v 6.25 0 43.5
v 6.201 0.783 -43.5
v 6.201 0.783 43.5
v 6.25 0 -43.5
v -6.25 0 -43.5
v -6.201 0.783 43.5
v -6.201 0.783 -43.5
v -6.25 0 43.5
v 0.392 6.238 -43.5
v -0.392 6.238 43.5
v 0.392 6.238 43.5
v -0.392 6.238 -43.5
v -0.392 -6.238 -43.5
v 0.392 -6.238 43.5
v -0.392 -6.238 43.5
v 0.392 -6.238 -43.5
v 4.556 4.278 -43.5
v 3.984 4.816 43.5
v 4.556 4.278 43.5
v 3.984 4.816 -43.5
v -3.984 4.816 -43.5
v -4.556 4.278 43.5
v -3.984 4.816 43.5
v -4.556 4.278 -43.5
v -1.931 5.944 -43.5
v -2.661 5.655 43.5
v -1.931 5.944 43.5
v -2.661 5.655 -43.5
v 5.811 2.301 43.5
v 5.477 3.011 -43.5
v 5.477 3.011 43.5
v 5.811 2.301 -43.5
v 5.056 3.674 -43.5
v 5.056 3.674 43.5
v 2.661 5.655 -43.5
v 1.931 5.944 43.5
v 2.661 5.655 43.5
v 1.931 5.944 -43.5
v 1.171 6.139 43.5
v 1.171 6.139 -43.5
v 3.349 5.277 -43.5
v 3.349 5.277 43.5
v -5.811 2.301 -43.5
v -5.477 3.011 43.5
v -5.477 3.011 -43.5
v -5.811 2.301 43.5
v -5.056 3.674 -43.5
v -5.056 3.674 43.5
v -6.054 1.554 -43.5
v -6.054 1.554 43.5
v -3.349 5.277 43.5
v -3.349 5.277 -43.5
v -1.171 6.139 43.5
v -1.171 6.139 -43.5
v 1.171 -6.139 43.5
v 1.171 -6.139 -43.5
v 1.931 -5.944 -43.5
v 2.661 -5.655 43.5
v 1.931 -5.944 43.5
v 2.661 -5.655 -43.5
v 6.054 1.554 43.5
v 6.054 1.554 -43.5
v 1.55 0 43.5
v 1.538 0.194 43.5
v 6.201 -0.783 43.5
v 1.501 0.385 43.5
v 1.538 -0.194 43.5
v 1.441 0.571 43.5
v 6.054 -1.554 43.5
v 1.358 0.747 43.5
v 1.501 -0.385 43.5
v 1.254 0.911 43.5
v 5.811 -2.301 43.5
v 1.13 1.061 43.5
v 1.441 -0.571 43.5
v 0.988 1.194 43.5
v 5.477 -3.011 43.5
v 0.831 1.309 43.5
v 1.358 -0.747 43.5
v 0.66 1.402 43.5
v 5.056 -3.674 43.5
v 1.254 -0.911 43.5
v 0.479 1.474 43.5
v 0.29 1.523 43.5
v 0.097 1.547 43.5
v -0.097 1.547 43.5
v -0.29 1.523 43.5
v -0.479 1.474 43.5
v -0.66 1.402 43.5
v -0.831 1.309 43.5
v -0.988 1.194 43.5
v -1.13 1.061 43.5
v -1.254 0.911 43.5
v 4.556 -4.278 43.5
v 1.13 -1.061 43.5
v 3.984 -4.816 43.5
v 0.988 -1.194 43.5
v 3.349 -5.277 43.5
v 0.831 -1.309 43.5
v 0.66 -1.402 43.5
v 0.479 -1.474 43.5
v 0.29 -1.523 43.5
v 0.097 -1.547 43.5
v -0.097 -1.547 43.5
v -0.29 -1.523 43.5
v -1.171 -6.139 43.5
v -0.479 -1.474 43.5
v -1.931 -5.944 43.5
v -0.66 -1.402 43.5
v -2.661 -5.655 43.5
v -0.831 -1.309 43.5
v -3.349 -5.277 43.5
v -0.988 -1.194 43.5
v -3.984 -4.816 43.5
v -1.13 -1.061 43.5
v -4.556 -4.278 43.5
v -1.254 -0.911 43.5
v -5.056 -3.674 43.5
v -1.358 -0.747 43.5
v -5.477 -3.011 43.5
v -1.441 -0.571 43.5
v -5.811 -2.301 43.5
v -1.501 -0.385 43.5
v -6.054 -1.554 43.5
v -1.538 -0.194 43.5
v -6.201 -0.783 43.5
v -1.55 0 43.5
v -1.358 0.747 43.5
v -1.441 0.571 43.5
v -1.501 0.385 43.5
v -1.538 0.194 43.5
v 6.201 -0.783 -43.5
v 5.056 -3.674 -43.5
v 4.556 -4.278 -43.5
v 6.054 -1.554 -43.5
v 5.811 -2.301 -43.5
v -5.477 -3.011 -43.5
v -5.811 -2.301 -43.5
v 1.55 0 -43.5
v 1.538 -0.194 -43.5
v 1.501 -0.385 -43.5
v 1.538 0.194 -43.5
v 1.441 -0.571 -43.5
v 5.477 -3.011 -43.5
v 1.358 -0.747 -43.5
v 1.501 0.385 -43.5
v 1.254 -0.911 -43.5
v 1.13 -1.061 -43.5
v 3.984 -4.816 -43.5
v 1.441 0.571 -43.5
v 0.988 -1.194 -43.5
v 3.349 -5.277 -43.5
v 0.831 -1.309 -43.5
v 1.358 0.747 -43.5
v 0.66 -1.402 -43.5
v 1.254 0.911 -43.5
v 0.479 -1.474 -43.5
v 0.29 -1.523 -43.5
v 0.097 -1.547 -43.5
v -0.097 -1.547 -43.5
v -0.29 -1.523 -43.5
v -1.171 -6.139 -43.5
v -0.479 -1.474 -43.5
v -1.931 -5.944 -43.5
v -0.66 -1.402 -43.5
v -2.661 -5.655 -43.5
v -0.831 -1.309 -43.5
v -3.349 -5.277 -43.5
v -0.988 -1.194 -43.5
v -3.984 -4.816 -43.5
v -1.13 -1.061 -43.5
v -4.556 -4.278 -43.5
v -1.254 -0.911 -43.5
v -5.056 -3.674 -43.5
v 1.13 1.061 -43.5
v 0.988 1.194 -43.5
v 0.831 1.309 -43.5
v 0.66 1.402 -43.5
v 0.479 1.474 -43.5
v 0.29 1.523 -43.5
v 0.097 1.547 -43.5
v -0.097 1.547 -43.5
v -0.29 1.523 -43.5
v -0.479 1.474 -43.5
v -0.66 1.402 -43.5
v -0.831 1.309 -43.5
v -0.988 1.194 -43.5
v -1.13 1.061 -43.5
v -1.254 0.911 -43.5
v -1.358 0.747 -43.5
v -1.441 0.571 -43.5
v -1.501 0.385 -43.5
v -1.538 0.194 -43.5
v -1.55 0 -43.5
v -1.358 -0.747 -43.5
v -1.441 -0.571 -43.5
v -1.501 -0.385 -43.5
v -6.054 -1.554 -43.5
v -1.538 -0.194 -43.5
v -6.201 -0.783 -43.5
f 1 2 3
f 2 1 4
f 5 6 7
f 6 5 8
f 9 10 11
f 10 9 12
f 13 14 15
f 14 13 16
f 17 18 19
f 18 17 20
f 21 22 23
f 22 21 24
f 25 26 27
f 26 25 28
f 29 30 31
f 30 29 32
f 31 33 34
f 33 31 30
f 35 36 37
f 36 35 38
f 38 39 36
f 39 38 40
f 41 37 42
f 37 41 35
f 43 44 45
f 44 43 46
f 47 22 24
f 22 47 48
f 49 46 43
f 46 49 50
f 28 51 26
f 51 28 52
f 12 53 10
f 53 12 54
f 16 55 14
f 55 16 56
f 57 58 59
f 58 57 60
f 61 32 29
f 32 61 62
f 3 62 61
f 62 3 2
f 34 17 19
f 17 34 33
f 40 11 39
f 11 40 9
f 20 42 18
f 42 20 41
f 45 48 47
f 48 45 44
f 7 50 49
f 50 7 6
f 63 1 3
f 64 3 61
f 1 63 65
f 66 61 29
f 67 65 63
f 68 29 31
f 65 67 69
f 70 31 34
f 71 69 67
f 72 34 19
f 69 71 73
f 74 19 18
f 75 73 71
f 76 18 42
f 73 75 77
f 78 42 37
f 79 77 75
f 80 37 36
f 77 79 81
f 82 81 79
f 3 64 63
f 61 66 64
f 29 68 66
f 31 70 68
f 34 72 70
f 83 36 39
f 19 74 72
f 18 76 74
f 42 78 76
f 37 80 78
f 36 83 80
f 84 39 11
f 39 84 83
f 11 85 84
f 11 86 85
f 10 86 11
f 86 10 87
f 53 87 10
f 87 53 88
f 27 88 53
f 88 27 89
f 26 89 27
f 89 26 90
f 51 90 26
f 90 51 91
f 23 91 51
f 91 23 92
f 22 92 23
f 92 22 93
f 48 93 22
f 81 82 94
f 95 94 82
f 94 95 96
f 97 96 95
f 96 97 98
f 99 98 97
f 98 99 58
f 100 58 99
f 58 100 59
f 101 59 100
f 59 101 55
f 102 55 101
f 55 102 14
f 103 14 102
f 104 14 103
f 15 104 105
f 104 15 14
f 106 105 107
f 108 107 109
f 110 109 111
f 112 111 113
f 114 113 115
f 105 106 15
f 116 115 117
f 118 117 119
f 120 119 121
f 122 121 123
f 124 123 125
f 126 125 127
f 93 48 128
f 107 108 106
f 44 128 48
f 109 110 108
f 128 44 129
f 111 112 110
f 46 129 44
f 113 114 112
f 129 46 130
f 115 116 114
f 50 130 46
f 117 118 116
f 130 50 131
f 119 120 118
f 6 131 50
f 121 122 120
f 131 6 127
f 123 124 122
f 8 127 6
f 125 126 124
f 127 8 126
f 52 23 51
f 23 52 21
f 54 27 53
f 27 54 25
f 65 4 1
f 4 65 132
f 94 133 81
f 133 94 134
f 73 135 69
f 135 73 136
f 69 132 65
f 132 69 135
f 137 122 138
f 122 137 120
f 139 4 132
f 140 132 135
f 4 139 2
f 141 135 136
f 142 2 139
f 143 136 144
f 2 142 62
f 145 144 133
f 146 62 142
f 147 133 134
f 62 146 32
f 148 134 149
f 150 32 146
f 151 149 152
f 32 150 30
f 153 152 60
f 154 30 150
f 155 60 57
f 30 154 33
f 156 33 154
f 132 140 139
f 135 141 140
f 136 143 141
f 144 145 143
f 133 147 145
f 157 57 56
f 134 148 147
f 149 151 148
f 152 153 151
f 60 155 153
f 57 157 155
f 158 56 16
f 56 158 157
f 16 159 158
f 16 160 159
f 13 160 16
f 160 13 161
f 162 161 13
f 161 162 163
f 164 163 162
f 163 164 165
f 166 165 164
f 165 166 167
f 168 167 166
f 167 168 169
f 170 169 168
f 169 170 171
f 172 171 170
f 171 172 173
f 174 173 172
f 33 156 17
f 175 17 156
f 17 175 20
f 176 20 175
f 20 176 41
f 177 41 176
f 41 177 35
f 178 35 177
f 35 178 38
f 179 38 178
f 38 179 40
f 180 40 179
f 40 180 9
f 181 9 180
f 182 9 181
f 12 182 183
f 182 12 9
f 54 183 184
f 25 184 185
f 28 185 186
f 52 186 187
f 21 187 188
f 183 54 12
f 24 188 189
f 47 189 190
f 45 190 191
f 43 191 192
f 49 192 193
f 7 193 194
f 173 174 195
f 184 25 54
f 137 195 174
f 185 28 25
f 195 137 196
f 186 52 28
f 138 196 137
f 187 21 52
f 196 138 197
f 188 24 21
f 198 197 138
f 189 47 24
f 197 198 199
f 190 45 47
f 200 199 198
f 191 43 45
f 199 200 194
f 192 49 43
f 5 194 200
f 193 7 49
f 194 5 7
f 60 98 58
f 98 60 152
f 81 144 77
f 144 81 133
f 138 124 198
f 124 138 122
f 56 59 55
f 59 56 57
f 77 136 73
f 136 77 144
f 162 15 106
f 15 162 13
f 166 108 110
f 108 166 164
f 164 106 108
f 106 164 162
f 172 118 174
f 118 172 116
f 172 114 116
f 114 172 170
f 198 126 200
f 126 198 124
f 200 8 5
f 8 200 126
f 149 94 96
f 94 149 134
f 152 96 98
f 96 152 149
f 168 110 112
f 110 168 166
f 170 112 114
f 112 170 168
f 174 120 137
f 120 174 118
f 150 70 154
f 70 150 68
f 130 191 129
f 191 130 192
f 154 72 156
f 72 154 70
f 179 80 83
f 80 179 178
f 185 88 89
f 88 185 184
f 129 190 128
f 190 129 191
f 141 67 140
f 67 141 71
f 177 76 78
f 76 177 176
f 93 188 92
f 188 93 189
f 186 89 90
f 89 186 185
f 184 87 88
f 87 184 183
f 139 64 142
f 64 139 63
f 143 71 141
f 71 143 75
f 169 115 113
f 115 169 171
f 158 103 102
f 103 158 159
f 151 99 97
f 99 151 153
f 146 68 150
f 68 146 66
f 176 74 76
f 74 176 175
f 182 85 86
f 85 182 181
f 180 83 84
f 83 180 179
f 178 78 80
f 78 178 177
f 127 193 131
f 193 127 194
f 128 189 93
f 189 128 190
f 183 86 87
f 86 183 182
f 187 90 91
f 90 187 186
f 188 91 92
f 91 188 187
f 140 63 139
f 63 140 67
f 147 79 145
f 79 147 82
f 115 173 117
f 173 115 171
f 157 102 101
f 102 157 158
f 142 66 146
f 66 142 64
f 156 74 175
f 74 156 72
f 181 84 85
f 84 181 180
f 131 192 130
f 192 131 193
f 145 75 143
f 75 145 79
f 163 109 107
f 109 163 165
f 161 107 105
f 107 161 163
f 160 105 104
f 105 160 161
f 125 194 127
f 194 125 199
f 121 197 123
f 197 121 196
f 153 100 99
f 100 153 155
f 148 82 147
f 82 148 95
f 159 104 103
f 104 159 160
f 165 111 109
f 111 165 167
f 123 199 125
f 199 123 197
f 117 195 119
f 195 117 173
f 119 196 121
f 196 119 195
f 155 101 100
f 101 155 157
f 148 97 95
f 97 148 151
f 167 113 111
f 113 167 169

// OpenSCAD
$fn = 50;


difference() {
	union() {
		translate(v = [0, 0, -43.5000000000]) {
			cylinder(h = 87, r = 6.2500000000);
		}
	}
	union() {
		translate(v = [0, 0, -100.0000000000]) {
			cylinder(h = 200, r = 1.5500000000);
		}
	}
}
